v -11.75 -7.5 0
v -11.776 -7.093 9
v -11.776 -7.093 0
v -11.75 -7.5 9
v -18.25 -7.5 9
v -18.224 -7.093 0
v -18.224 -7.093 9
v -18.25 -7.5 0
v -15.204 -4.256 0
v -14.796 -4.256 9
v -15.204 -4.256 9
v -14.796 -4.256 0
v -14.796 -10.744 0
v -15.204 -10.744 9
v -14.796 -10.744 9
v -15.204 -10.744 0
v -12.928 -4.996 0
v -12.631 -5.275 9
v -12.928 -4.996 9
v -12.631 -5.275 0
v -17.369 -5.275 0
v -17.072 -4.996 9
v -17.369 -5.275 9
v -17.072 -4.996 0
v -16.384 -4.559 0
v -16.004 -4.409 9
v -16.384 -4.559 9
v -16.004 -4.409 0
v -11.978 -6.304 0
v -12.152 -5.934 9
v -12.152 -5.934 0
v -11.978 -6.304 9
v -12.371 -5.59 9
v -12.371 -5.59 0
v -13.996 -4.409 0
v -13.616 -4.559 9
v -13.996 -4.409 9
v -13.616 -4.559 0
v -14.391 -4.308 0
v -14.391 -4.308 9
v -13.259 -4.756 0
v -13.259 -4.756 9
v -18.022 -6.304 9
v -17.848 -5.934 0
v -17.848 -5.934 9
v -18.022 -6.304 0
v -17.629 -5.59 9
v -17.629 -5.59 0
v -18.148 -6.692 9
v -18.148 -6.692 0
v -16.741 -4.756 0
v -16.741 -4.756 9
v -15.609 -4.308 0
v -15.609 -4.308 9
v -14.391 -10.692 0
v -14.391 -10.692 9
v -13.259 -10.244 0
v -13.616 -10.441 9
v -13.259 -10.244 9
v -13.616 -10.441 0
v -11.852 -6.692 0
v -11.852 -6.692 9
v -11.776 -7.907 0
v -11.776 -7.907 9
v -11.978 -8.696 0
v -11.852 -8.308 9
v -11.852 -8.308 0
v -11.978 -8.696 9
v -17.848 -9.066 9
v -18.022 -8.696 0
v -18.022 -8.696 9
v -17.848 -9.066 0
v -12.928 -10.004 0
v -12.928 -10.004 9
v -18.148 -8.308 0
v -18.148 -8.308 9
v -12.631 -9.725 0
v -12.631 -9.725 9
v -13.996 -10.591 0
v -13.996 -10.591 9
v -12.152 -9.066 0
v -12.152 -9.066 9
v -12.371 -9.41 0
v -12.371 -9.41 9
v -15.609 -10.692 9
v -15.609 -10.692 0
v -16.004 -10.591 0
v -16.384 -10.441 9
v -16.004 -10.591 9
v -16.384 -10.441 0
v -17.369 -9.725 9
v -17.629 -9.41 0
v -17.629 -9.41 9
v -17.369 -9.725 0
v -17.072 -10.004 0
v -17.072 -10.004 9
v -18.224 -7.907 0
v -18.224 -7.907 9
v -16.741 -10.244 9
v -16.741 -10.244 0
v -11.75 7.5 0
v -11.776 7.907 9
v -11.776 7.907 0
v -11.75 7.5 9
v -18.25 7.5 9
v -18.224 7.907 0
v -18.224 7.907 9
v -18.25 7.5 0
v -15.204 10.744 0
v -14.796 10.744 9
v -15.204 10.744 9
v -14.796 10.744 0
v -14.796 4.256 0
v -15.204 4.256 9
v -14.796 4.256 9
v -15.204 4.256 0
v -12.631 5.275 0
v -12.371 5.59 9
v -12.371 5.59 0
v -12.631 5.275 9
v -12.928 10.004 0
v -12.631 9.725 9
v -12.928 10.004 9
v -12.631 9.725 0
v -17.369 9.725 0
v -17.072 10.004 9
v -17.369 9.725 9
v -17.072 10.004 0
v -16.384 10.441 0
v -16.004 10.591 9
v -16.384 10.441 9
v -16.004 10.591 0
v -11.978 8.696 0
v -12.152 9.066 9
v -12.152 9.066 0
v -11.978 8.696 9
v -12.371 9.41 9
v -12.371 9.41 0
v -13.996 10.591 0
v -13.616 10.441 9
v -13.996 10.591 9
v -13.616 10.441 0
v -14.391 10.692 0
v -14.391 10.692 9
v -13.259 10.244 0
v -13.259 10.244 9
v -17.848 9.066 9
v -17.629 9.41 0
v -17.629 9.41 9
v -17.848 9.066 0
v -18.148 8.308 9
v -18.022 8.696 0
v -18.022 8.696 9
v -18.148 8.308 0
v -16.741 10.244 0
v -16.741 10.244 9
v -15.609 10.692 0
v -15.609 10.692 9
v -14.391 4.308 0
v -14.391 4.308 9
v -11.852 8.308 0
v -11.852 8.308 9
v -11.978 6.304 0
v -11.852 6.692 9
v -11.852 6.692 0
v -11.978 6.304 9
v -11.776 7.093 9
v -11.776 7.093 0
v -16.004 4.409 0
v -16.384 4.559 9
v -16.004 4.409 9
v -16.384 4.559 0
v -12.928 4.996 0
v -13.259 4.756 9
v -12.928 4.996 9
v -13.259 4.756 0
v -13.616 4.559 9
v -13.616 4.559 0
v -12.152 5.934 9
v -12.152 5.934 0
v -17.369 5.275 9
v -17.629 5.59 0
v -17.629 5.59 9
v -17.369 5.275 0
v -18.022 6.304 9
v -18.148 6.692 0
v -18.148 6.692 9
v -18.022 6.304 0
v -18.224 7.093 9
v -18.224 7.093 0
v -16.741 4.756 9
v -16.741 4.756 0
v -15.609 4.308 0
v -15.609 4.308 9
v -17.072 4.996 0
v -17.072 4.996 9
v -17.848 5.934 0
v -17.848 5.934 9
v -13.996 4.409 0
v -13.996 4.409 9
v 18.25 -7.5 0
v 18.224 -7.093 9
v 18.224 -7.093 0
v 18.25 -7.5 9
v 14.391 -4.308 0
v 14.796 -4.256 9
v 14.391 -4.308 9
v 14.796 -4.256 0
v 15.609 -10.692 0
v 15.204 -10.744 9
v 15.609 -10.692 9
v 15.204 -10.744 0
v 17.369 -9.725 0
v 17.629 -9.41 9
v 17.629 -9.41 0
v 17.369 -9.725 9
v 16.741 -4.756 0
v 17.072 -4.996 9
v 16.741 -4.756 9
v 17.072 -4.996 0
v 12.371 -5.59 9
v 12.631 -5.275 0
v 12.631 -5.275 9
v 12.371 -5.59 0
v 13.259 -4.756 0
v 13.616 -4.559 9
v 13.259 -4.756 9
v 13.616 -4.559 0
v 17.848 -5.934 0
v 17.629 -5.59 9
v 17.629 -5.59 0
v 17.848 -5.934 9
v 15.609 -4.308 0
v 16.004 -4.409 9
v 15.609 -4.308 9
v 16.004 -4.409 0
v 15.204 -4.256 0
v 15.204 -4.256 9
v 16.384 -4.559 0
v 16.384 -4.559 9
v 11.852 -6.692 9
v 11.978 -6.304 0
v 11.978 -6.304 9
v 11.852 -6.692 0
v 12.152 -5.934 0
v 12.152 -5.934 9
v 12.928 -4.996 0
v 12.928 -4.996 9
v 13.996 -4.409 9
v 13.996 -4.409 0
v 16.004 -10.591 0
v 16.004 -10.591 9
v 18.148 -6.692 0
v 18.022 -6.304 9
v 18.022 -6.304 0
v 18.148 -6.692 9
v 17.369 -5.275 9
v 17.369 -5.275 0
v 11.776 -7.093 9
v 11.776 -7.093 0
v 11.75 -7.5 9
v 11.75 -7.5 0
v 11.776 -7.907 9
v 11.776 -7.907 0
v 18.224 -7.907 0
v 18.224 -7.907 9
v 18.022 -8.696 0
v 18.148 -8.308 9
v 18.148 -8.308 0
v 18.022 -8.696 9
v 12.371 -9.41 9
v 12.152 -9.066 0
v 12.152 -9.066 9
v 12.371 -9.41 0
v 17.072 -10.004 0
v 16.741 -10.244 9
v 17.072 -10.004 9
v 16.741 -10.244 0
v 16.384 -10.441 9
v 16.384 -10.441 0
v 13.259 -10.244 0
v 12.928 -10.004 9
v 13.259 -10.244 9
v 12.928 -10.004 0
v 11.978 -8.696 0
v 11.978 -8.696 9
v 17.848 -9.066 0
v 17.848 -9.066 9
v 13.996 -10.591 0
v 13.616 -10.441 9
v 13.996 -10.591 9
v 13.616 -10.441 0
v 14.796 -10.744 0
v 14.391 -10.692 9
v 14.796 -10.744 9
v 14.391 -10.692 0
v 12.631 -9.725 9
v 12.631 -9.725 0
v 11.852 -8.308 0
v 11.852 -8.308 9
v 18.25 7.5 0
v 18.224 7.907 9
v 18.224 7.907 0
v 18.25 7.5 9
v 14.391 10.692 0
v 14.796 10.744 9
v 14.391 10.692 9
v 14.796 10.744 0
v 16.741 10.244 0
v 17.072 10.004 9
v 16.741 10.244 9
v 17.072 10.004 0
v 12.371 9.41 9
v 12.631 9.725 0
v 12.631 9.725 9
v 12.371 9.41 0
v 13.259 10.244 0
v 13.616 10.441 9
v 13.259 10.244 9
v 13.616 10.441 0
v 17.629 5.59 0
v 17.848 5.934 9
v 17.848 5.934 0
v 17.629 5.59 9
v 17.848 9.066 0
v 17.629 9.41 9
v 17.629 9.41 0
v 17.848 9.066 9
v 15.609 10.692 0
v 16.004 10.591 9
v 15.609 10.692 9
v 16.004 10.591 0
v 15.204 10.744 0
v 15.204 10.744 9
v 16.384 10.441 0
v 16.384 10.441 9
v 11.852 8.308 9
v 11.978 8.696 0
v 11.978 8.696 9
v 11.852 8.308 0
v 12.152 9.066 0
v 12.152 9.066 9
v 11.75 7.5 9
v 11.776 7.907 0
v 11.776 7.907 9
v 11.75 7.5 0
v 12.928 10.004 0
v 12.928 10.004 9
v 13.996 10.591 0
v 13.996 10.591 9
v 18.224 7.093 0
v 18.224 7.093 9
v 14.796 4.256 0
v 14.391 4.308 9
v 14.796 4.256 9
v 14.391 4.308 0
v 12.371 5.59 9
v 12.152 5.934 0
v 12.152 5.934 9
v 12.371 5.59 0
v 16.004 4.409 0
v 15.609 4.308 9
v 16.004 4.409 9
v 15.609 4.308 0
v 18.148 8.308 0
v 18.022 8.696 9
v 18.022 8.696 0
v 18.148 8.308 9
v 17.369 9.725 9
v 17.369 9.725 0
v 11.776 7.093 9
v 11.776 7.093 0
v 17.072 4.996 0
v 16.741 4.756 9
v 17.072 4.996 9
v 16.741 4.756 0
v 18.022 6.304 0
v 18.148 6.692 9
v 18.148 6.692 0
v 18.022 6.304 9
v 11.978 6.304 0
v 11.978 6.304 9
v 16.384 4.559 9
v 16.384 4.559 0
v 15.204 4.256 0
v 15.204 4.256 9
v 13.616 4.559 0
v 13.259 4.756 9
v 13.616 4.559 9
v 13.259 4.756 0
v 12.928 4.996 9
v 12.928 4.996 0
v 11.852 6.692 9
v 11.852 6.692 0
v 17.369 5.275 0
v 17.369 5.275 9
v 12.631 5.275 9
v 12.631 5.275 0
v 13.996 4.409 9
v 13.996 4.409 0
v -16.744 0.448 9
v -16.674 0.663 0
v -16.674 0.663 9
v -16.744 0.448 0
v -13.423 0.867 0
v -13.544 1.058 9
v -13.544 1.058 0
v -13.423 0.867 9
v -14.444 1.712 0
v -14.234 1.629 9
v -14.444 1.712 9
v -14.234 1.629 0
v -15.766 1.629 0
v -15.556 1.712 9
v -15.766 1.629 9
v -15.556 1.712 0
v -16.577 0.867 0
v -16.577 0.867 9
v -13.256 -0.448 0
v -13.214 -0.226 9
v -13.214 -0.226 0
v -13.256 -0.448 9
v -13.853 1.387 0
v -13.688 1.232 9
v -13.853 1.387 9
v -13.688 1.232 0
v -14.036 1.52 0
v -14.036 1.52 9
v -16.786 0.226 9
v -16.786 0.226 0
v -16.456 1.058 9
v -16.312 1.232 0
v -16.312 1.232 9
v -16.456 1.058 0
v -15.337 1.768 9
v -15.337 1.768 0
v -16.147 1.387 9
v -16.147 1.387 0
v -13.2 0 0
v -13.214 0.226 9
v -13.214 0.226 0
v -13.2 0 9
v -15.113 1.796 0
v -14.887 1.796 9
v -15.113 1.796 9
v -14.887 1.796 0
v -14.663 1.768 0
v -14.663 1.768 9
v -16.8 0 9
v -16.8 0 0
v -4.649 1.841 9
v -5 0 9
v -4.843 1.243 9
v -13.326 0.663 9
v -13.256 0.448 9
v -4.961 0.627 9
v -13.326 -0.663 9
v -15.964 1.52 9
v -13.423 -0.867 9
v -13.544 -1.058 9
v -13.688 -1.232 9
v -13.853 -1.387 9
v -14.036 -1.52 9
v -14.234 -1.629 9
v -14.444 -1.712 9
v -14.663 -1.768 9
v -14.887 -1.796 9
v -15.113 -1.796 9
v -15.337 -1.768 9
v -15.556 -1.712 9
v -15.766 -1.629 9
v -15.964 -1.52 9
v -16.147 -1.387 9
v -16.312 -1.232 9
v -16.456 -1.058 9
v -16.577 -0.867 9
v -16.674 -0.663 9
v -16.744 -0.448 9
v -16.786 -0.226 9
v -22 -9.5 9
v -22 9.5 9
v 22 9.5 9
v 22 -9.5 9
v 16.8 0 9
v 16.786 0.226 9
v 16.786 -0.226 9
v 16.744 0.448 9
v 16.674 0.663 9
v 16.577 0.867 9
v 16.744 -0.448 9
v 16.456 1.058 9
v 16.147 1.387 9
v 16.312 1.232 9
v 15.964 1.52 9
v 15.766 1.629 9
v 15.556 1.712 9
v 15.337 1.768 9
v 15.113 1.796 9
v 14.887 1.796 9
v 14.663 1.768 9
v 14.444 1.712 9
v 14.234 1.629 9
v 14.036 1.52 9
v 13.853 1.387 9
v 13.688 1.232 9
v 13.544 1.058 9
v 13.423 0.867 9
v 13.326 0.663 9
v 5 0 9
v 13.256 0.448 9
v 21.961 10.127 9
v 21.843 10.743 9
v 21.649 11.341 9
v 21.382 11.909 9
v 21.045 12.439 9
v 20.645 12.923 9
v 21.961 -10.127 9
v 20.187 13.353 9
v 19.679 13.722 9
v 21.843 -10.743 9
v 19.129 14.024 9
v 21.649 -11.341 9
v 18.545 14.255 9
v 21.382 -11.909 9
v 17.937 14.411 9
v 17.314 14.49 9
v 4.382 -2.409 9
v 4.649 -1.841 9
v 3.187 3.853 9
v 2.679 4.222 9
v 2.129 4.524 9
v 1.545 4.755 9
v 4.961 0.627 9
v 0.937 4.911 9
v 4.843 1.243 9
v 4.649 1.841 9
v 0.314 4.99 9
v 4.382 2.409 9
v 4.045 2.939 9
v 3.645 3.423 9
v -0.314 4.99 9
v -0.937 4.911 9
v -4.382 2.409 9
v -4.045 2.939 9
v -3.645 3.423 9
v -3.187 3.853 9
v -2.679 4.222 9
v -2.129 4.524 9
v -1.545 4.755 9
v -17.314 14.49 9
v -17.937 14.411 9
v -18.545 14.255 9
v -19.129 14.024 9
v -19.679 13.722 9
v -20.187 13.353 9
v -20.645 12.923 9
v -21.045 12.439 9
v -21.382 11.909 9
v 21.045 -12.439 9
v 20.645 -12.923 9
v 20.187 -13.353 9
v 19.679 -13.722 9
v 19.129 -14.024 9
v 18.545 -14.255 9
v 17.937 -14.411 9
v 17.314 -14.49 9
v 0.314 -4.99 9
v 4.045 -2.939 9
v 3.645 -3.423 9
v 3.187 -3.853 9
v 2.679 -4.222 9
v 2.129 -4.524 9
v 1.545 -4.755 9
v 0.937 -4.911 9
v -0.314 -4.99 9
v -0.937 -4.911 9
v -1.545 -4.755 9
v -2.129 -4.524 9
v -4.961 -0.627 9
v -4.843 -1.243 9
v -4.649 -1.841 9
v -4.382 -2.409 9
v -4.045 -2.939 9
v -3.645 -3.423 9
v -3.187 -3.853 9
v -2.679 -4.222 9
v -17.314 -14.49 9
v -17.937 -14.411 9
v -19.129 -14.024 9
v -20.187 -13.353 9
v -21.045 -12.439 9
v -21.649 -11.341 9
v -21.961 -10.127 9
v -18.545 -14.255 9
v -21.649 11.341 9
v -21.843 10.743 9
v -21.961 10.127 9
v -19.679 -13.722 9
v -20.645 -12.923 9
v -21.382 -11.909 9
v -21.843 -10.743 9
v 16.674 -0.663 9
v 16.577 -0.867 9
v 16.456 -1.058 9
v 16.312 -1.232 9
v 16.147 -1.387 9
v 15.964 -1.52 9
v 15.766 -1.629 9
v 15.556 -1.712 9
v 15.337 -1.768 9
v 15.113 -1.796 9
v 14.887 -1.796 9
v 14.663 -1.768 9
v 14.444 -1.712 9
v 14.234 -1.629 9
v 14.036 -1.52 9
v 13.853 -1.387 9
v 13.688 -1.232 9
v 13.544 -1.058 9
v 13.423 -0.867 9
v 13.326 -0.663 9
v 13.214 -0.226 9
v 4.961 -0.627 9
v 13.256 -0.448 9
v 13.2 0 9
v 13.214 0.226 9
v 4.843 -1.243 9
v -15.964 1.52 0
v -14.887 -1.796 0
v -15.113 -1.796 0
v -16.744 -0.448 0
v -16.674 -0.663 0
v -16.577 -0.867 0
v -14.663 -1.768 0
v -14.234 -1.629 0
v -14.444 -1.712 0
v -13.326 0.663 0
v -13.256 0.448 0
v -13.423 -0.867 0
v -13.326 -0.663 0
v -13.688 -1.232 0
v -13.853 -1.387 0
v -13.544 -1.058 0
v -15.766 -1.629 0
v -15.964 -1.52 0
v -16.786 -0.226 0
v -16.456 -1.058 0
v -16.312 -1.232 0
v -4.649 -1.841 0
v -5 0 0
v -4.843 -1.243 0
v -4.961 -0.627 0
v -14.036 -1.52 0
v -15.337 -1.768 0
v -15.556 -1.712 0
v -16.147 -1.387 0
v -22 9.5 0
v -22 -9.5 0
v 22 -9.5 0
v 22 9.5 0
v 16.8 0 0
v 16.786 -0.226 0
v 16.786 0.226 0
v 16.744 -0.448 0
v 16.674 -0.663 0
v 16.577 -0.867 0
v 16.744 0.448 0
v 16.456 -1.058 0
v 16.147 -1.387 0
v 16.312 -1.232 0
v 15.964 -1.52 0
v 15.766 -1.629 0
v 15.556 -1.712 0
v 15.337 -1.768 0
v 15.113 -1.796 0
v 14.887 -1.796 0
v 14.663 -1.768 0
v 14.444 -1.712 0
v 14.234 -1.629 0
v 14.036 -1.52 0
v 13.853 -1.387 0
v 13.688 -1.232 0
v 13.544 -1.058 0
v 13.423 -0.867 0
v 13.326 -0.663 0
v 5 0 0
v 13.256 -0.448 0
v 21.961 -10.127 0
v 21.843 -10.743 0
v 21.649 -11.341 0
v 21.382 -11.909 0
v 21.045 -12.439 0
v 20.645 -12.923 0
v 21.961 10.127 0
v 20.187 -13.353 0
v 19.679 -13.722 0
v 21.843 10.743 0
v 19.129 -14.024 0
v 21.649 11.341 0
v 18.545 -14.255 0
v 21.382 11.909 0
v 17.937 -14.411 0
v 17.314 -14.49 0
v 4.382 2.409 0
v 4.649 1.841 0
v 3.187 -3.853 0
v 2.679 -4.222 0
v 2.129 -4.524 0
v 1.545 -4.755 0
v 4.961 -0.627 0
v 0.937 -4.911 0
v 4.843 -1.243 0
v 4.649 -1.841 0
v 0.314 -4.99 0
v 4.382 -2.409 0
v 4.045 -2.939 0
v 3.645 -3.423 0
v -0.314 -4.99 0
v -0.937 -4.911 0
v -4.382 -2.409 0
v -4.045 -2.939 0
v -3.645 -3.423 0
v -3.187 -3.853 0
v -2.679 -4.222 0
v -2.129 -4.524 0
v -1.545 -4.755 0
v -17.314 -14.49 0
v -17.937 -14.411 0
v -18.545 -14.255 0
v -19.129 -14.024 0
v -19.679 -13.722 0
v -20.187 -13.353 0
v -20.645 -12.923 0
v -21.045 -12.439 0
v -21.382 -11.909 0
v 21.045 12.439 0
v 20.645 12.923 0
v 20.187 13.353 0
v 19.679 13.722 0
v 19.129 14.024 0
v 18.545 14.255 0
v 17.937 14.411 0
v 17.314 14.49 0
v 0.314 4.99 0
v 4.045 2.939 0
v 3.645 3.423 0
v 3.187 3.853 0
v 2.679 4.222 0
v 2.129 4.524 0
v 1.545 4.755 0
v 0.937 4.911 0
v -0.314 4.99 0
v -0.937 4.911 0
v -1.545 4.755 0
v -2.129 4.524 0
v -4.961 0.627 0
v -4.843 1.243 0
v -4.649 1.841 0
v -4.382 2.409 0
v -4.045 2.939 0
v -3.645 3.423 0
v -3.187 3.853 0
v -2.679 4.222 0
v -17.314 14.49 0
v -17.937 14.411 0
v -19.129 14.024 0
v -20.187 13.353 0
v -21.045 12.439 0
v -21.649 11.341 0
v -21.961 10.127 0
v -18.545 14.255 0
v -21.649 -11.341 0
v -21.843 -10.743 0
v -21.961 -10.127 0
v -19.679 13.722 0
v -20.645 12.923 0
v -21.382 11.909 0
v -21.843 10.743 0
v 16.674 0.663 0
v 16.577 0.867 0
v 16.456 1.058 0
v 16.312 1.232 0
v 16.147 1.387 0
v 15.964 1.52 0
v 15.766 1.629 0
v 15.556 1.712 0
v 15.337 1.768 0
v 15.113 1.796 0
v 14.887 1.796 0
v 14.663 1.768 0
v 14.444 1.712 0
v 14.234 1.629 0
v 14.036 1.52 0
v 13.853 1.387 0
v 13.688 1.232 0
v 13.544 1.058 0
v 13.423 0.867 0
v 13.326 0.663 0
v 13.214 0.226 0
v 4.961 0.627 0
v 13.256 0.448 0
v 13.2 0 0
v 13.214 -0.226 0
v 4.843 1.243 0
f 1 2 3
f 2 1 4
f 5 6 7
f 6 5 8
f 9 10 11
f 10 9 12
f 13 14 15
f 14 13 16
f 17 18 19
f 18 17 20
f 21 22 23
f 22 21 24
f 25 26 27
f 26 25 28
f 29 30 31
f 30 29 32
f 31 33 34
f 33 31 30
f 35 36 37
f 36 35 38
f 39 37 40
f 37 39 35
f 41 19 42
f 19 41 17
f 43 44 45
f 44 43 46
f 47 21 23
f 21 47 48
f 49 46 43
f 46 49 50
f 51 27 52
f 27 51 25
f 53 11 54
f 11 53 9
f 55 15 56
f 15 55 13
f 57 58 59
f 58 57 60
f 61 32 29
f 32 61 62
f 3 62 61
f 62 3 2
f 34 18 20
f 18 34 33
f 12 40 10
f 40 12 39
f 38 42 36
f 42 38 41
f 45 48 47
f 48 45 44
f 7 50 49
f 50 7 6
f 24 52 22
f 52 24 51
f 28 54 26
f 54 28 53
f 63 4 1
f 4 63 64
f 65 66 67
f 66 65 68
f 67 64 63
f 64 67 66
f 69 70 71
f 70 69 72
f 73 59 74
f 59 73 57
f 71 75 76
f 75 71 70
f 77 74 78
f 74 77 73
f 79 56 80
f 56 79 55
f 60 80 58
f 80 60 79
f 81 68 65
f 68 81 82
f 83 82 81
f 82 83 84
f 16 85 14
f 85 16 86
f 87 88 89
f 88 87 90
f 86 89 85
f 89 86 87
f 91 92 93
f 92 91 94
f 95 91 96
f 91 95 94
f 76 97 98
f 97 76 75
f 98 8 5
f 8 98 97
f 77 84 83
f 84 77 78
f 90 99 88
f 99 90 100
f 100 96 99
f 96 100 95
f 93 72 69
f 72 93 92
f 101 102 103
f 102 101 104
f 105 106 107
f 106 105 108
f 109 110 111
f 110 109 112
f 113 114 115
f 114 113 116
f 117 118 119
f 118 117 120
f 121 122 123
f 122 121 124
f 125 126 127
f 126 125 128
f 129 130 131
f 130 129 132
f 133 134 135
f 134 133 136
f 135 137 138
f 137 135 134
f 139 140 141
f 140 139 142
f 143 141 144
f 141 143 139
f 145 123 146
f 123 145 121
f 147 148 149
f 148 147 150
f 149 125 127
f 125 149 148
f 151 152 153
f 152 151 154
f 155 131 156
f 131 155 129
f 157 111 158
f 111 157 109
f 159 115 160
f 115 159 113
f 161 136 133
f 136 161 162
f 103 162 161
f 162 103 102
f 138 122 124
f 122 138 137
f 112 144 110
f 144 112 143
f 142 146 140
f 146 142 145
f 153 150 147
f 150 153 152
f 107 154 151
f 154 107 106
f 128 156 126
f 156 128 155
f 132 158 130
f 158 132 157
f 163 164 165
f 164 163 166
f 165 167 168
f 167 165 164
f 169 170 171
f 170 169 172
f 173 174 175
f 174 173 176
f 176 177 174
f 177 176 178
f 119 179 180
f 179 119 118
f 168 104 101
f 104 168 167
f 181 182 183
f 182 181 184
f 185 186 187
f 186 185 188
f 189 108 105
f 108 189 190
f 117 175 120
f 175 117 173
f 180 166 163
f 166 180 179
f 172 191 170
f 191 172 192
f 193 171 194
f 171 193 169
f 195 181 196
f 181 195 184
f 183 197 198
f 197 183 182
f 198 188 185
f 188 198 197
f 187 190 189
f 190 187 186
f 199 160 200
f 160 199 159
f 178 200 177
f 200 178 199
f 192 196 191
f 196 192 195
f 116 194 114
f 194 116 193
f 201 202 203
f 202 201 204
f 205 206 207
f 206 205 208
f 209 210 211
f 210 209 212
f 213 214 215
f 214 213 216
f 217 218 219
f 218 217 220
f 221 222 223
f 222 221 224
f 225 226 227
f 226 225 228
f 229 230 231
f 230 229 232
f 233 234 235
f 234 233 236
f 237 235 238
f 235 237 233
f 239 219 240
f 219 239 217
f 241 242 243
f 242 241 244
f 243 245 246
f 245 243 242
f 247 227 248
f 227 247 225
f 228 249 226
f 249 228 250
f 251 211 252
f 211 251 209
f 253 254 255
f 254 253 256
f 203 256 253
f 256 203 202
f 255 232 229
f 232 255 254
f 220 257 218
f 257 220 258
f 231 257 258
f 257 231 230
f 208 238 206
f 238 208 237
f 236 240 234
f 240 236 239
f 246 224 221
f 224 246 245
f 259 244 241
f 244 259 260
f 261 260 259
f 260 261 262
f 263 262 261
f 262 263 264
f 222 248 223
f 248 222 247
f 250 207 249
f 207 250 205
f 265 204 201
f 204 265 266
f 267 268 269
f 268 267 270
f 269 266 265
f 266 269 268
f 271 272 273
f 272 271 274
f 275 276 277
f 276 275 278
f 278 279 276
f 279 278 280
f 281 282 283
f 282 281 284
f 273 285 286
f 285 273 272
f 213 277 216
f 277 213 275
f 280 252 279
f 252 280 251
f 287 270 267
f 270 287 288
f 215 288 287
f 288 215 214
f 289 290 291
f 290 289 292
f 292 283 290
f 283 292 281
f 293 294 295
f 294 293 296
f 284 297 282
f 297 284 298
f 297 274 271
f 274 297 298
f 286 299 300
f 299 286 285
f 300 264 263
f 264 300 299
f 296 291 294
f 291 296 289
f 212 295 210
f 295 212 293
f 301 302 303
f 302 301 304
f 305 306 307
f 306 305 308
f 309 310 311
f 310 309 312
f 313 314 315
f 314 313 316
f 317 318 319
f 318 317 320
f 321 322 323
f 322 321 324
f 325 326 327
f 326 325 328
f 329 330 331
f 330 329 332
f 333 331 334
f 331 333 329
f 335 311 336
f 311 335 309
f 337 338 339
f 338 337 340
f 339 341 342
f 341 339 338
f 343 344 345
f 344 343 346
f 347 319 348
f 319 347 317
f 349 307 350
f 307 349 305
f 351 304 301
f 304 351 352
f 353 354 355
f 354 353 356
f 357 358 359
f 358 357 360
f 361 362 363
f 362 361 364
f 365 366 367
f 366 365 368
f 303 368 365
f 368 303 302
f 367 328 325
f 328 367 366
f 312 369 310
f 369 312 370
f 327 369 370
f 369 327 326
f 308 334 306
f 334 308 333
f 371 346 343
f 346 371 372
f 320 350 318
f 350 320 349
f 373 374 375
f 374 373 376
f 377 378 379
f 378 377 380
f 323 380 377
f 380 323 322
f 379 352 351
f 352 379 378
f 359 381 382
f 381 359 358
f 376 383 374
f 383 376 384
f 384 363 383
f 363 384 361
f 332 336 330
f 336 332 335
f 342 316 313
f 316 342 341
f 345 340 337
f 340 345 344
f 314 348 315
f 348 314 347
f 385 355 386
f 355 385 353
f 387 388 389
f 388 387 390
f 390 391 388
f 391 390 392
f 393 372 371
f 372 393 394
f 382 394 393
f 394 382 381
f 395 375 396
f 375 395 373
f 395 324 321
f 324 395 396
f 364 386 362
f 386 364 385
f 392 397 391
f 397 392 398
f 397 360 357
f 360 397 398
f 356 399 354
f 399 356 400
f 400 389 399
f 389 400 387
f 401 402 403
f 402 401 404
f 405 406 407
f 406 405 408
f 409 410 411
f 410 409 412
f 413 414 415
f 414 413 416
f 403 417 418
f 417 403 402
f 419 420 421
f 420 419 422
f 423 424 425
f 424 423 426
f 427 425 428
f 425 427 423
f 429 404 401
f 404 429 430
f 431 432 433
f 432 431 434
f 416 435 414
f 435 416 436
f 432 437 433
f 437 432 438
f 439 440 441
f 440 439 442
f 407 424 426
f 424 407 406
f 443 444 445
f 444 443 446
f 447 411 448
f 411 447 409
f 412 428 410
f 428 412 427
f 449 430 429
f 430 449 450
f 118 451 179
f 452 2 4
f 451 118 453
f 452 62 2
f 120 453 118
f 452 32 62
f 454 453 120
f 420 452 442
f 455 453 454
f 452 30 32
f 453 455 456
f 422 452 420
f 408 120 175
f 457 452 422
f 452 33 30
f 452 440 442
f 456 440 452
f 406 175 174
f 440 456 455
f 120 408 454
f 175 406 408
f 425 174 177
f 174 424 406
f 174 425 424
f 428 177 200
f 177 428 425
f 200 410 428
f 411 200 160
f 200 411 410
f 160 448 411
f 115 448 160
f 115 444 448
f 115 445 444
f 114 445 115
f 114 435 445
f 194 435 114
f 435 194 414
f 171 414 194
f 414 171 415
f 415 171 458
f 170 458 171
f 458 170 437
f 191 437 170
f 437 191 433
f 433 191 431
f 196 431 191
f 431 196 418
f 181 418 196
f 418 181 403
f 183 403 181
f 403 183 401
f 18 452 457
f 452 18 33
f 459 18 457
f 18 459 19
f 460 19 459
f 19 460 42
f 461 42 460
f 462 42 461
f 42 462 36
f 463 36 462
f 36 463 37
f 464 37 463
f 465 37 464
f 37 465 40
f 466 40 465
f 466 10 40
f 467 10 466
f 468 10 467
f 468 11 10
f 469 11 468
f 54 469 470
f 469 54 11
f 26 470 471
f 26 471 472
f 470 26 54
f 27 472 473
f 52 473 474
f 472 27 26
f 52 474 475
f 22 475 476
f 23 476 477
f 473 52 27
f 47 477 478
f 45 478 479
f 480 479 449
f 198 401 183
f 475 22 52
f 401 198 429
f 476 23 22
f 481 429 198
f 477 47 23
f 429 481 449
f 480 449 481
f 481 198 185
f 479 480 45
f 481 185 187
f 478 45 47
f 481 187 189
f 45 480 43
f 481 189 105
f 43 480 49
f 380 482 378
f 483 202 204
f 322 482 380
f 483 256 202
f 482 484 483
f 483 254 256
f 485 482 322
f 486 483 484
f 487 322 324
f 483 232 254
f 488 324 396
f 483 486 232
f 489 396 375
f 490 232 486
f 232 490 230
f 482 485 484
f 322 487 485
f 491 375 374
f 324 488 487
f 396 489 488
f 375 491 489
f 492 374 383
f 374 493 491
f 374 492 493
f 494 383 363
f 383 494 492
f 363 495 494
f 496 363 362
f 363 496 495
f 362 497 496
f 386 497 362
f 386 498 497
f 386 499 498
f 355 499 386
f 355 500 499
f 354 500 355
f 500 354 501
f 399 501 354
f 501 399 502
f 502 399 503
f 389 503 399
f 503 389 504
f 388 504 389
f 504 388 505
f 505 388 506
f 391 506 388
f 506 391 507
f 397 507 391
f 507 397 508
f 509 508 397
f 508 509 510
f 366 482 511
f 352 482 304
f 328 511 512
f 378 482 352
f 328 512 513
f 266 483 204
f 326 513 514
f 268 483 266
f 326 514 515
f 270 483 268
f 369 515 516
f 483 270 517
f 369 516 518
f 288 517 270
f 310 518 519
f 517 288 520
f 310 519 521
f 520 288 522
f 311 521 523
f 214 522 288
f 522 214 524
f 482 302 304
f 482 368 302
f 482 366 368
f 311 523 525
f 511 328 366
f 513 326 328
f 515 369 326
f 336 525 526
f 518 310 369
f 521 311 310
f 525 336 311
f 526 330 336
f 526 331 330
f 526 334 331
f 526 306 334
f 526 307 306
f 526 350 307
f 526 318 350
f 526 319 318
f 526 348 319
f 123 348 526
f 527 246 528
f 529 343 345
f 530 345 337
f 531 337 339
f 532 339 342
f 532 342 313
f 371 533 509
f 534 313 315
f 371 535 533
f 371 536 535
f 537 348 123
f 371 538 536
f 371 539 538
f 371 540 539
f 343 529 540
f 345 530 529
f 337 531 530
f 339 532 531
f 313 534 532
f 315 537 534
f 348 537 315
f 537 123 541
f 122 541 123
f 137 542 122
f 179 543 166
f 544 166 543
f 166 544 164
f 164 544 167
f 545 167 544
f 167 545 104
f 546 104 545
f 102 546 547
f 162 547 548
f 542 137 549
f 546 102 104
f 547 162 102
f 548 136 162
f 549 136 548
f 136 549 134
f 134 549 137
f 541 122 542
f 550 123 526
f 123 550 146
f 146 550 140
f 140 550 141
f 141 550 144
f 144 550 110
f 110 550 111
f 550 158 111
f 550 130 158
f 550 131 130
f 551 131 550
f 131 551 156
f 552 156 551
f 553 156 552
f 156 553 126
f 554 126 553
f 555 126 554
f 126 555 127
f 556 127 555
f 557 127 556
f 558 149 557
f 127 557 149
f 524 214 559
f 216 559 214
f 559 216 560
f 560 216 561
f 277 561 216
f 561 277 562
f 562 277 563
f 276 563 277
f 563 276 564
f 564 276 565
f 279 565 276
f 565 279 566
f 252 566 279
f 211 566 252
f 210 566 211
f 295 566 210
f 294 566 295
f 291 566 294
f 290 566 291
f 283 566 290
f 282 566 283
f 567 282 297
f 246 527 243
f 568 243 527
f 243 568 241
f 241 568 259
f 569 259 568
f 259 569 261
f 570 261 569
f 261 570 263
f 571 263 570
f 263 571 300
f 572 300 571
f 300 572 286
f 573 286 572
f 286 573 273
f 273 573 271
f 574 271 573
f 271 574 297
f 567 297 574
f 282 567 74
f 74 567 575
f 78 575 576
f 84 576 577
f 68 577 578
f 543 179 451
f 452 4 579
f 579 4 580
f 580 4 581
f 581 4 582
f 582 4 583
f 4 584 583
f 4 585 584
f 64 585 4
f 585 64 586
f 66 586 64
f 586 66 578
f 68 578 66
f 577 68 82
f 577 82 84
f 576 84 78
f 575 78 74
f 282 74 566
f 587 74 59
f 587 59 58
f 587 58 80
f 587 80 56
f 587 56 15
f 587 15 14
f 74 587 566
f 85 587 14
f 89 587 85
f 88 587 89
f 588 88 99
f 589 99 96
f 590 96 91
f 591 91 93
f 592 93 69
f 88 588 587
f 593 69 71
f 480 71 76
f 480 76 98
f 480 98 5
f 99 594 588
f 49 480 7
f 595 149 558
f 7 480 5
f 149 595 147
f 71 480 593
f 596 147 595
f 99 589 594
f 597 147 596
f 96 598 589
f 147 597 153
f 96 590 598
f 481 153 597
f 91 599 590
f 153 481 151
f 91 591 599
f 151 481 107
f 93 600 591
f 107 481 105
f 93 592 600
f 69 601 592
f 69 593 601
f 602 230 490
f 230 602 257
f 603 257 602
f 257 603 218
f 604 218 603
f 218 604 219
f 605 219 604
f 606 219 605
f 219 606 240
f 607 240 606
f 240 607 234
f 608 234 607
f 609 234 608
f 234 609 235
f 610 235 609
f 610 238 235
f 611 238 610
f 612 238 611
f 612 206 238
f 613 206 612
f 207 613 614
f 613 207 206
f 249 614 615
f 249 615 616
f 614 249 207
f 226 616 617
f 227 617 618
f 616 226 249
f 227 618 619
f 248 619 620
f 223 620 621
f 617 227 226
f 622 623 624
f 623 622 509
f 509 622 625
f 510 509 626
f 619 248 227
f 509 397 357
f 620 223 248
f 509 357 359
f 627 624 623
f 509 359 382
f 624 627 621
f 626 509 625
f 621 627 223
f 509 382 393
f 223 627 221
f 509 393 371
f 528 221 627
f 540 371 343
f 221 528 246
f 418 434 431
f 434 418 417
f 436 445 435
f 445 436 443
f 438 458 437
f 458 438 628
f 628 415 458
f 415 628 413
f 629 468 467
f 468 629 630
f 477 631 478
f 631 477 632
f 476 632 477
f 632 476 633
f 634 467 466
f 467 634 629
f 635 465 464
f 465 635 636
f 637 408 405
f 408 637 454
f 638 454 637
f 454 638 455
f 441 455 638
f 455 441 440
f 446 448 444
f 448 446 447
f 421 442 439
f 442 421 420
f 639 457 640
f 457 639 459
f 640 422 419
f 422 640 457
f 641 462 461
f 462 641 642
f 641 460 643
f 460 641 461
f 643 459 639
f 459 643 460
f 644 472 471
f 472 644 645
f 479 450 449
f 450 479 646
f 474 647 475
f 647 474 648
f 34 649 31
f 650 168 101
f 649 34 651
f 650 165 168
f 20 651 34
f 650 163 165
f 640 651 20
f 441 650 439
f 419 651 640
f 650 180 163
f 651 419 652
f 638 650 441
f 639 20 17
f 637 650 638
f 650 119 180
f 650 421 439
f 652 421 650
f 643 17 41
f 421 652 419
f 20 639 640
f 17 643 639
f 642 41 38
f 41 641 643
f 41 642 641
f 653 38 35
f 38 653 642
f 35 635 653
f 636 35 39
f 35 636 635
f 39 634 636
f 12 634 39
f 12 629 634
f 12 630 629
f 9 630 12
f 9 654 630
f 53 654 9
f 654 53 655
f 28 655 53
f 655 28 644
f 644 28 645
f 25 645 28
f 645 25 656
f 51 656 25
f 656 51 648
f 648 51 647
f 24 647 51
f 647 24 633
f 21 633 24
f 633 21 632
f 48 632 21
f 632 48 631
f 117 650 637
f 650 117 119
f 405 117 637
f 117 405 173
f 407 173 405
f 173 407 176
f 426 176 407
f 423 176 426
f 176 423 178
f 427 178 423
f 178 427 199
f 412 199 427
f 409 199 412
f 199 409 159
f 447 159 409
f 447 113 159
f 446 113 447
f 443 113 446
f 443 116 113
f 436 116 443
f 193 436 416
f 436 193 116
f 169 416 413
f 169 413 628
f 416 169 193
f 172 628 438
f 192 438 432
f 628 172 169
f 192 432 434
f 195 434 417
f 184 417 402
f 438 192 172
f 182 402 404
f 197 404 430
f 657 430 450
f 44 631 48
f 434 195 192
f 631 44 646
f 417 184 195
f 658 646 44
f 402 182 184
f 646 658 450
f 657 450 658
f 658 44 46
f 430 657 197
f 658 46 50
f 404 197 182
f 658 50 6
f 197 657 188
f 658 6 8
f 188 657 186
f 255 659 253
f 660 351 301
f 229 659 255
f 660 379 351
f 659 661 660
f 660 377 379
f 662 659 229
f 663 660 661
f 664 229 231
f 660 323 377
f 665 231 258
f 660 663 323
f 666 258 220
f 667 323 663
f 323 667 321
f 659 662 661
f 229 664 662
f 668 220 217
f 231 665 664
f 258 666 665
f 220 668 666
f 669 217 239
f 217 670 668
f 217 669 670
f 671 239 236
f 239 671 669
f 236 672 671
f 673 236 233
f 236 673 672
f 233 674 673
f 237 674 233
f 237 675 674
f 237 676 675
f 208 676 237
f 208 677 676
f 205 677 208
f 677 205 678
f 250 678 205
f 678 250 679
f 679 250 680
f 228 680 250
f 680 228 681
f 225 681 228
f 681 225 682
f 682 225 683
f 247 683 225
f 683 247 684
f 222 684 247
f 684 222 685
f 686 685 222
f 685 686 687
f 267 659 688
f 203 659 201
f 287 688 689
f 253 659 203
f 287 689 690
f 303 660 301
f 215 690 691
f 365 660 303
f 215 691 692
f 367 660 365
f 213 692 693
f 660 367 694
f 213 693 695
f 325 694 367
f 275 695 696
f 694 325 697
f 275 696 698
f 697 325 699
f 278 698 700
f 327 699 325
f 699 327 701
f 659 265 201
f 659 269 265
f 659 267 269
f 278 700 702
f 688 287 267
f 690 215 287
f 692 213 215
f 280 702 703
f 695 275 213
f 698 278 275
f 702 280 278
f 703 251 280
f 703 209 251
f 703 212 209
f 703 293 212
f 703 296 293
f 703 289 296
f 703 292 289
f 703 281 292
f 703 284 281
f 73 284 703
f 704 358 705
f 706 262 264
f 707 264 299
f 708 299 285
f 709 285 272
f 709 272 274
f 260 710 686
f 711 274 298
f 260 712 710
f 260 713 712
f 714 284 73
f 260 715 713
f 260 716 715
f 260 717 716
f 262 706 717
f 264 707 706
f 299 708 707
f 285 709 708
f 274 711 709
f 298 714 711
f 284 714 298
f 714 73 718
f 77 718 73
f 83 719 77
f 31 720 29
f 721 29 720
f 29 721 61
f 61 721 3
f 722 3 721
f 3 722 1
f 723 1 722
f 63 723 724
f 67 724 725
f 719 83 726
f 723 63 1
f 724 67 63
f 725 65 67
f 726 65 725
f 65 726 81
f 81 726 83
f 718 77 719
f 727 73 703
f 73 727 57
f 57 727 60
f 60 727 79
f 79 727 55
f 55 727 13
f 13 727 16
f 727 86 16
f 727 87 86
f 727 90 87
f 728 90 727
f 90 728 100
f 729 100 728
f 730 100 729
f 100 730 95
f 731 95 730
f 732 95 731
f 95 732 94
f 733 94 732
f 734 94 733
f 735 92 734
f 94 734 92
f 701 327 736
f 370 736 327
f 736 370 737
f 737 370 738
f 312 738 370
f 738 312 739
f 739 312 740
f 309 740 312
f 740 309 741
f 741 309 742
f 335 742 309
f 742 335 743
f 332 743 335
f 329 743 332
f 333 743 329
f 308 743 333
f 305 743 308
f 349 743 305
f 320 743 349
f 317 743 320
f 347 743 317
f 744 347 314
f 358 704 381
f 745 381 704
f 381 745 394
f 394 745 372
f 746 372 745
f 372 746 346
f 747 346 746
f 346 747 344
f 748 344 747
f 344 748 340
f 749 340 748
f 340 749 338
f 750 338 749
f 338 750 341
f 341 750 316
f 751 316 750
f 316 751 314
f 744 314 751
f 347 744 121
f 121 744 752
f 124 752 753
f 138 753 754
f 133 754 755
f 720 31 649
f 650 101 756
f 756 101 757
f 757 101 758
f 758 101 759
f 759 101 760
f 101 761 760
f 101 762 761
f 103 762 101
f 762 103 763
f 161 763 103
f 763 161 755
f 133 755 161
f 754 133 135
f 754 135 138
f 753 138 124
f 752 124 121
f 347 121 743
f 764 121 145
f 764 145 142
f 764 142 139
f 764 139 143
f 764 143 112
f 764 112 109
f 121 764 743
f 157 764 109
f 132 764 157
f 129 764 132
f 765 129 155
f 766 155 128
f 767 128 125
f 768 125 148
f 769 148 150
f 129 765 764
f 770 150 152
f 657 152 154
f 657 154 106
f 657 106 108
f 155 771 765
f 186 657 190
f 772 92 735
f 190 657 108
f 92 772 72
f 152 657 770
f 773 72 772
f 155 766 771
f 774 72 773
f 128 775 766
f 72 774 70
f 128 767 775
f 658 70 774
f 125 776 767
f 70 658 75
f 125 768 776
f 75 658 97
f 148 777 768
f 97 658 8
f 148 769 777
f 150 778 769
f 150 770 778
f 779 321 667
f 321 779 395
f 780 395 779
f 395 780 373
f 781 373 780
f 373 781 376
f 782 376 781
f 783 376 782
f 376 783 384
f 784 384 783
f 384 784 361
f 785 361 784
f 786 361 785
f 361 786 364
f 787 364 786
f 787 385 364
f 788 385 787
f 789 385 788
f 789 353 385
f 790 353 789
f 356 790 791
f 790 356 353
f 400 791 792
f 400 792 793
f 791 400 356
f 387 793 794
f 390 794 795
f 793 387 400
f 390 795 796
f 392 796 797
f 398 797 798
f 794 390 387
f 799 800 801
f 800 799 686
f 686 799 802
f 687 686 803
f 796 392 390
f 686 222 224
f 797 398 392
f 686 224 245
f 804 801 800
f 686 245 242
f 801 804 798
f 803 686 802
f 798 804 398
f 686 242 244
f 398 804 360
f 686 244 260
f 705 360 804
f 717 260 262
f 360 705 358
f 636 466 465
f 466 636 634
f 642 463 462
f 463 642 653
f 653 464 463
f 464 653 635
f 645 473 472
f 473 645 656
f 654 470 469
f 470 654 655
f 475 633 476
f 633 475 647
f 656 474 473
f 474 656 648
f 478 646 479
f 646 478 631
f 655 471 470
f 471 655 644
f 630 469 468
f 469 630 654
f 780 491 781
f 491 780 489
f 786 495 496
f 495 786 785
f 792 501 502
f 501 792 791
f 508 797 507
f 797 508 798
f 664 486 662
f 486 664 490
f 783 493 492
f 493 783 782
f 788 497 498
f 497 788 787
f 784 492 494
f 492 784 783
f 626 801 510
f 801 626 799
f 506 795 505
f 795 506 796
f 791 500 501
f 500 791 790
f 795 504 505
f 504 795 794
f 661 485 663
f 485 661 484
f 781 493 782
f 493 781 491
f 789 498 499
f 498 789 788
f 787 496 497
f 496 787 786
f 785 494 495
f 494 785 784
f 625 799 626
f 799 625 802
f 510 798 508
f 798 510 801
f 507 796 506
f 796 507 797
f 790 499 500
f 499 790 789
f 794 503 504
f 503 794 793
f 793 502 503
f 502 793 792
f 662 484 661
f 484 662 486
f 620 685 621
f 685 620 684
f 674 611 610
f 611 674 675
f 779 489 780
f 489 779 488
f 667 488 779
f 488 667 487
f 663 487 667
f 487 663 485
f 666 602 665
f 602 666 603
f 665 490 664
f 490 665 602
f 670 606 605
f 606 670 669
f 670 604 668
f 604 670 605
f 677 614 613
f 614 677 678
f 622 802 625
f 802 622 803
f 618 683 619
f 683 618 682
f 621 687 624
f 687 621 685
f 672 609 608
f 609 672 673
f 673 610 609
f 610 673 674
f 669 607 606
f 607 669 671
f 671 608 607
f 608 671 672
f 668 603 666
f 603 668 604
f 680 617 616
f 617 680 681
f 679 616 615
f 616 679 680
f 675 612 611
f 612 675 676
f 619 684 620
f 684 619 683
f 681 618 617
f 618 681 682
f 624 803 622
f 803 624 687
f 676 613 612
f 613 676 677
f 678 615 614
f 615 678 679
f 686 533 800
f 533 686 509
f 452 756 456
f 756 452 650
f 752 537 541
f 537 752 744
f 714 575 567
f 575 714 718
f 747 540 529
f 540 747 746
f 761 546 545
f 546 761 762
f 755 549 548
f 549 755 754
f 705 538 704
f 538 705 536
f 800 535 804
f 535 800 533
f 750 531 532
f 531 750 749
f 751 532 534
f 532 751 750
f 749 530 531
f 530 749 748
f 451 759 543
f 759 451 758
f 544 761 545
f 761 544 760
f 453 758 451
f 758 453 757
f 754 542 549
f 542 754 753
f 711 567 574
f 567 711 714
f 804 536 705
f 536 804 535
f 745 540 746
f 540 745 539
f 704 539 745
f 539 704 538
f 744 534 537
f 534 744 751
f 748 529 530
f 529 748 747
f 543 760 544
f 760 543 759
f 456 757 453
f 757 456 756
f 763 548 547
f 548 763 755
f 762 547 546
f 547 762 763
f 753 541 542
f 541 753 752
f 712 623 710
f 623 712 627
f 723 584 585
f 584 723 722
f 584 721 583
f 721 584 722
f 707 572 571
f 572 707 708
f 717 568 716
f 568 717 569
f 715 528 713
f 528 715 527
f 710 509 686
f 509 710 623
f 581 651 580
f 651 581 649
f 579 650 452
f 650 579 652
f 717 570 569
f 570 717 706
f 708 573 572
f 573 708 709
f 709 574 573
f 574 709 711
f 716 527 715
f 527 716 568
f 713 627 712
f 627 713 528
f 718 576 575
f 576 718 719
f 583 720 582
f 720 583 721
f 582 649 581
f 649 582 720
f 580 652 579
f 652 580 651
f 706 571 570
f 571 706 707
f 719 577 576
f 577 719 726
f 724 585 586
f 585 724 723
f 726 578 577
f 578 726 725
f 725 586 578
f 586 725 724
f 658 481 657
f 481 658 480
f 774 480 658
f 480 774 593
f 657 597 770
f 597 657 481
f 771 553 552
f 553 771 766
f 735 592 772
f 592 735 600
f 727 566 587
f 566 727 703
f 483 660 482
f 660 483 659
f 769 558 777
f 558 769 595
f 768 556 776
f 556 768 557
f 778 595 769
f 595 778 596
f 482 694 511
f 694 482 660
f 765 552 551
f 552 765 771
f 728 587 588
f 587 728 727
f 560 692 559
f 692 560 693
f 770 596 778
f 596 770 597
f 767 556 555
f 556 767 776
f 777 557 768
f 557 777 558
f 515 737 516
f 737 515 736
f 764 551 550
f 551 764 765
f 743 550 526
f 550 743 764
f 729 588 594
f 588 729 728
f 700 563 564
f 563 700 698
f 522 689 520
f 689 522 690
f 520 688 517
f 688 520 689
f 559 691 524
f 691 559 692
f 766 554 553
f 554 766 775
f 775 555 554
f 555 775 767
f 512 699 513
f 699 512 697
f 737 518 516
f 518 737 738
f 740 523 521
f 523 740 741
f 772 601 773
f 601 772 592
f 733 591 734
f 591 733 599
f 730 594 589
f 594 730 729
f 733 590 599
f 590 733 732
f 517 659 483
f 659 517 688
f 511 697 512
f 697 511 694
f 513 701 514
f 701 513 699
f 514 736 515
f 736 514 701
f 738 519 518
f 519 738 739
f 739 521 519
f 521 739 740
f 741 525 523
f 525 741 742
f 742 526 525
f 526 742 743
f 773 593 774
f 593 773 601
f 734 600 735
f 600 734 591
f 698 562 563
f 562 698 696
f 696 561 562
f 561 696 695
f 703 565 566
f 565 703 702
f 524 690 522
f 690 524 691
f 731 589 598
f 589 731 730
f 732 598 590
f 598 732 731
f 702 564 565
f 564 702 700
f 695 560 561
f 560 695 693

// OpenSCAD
$fn = 50;


difference() {
	union() {
		hull() {
			translate(v = [-17.0000000000, 9.5000000000, 0]) {
				cylinder(h = 9, r = 5);
			}
			translate(v = [17.0000000000, 9.5000000000, 0]) {
				cylinder(h = 9, r = 5);
			}
			translate(v = [-17.0000000000, -9.5000000000, 0]) {
				cylinder(h = 9, r = 5);
			}
			translate(v = [17.0000000000, -9.5000000000, 0]) {
				cylinder(h = 9, r = 5);
			}
		}
	}
	union() {
		#translate(v = [-15.0000000000, -7.5000000000, 0]) {
			cylinder(h = 9, r = 3.2500000000);
		}
		#translate(v = [-15.0000000000, 7.5000000000, 0]) {
			cylinder(h = 9, r = 3.2500000000);
		}
		#translate(v = [15.0000000000, -7.5000000000, 0]) {
			cylinder(h = 9, r = 3.2500000000);
		}
		#translate(v = [15.0000000000, 7.5000000000, 0]) {
			cylinder(h = 9, r = 3.2500000000);
		}
		#translate(v = [-15.0000000000, -7.5000000000, -100.0000000000]) {
			cylinder(h = 200, r = 3.2500000000);
		}
		#translate(v = [-15.0000000000, 7.5000000000, -100.0000000000]) {
			cylinder(h = 200, r = 3.2500000000);
		}
		#translate(v = [15.0000000000, -7.5000000000, -100.0000000000]) {
			cylinder(h = 200, r = 3.2500000000);
		}
		#translate(v = [15.0000000000, 7.5000000000, -100.0000000000]) {
			cylinder(h = 200, r = 3.2500000000);
		}
		#translate(v = [-15.0000000000, -7.5000000000, 0]) {
			cylinder(h = 9, r = 1.8000000000);
		}
		#translate(v = [-15.0000000000, 0.0000000000, 0]) {
			cylinder(h = 9, r = 1.8000000000);
		}
		#translate(v = [-15.0000000000, 7.5000000000, 0]) {
			cylinder(h = 9, r = 1.8000000000);
		}
		#translate(v = [15.0000000000, -7.5000000000, 0]) {
			cylinder(h = 9, r = 1.8000000000);
		}
		#translate(v = [15.0000000000, 0.0000000000, 0]) {
			cylinder(h = 9, r = 1.8000000000);
		}
		#translate(v = [15.0000000000, 7.5000000000, 0]) {
			cylinder(h = 9, r = 1.8000000000);
		}
		#translate(v = [-15.0000000000, -7.5000000000, 0]) {
			cylinder(h = 9, r = 1.8000000000);
		}
		#translate(v = [-15.0000000000, 0.0000000000, 0]) {
			cylinder(h = 9, r = 1.8000000000);
		}
		#translate(v = [-15.0000000000, 7.5000000000, 0]) {
			cylinder(h = 9, r = 1.8000000000);
		}
		#translate(v = [15.0000000000, -7.5000000000, 0]) {
			cylinder(h = 9, r = 1.8000000000);
		}
		#translate(v = [15.0000000000, 0.0000000000, 0]) {
			cylinder(h = 9, r = 1.8000000000);
		}
		#translate(v = [15.0000000000, 7.5000000000, 0]) {
			cylinder(h = 9, r = 1.8000000000);
		}
		#translate(v = [-15.0000000000, -7.5000000000, 0]) {
			cylinder(h = 9, r = 1.8000000000);
		}
		#translate(v = [-15.0000000000, 0.0000000000, 0]) {
			cylinder(h = 9, r = 1.8000000000);
		}
		#translate(v = [-15.0000000000, 7.5000000000, 0]) {
			cylinder(h = 9, r = 1.8000000000);
		}
		#translate(v = [15.0000000000, -7.5000000000, 0]) {
			cylinder(h = 9, r = 1.8000000000);
		}
		#translate(v = [15.0000000000, 0.0000000000, 0]) {
			cylinder(h = 9, r = 1.8000000000);
		}
		#translate(v = [15.0000000000, 7.5000000000, 0]) {
			cylinder(h = 9, r = 1.8000000000);
		}
		#cylinder(h = 9, r = 5.0000000000);
	}
}
